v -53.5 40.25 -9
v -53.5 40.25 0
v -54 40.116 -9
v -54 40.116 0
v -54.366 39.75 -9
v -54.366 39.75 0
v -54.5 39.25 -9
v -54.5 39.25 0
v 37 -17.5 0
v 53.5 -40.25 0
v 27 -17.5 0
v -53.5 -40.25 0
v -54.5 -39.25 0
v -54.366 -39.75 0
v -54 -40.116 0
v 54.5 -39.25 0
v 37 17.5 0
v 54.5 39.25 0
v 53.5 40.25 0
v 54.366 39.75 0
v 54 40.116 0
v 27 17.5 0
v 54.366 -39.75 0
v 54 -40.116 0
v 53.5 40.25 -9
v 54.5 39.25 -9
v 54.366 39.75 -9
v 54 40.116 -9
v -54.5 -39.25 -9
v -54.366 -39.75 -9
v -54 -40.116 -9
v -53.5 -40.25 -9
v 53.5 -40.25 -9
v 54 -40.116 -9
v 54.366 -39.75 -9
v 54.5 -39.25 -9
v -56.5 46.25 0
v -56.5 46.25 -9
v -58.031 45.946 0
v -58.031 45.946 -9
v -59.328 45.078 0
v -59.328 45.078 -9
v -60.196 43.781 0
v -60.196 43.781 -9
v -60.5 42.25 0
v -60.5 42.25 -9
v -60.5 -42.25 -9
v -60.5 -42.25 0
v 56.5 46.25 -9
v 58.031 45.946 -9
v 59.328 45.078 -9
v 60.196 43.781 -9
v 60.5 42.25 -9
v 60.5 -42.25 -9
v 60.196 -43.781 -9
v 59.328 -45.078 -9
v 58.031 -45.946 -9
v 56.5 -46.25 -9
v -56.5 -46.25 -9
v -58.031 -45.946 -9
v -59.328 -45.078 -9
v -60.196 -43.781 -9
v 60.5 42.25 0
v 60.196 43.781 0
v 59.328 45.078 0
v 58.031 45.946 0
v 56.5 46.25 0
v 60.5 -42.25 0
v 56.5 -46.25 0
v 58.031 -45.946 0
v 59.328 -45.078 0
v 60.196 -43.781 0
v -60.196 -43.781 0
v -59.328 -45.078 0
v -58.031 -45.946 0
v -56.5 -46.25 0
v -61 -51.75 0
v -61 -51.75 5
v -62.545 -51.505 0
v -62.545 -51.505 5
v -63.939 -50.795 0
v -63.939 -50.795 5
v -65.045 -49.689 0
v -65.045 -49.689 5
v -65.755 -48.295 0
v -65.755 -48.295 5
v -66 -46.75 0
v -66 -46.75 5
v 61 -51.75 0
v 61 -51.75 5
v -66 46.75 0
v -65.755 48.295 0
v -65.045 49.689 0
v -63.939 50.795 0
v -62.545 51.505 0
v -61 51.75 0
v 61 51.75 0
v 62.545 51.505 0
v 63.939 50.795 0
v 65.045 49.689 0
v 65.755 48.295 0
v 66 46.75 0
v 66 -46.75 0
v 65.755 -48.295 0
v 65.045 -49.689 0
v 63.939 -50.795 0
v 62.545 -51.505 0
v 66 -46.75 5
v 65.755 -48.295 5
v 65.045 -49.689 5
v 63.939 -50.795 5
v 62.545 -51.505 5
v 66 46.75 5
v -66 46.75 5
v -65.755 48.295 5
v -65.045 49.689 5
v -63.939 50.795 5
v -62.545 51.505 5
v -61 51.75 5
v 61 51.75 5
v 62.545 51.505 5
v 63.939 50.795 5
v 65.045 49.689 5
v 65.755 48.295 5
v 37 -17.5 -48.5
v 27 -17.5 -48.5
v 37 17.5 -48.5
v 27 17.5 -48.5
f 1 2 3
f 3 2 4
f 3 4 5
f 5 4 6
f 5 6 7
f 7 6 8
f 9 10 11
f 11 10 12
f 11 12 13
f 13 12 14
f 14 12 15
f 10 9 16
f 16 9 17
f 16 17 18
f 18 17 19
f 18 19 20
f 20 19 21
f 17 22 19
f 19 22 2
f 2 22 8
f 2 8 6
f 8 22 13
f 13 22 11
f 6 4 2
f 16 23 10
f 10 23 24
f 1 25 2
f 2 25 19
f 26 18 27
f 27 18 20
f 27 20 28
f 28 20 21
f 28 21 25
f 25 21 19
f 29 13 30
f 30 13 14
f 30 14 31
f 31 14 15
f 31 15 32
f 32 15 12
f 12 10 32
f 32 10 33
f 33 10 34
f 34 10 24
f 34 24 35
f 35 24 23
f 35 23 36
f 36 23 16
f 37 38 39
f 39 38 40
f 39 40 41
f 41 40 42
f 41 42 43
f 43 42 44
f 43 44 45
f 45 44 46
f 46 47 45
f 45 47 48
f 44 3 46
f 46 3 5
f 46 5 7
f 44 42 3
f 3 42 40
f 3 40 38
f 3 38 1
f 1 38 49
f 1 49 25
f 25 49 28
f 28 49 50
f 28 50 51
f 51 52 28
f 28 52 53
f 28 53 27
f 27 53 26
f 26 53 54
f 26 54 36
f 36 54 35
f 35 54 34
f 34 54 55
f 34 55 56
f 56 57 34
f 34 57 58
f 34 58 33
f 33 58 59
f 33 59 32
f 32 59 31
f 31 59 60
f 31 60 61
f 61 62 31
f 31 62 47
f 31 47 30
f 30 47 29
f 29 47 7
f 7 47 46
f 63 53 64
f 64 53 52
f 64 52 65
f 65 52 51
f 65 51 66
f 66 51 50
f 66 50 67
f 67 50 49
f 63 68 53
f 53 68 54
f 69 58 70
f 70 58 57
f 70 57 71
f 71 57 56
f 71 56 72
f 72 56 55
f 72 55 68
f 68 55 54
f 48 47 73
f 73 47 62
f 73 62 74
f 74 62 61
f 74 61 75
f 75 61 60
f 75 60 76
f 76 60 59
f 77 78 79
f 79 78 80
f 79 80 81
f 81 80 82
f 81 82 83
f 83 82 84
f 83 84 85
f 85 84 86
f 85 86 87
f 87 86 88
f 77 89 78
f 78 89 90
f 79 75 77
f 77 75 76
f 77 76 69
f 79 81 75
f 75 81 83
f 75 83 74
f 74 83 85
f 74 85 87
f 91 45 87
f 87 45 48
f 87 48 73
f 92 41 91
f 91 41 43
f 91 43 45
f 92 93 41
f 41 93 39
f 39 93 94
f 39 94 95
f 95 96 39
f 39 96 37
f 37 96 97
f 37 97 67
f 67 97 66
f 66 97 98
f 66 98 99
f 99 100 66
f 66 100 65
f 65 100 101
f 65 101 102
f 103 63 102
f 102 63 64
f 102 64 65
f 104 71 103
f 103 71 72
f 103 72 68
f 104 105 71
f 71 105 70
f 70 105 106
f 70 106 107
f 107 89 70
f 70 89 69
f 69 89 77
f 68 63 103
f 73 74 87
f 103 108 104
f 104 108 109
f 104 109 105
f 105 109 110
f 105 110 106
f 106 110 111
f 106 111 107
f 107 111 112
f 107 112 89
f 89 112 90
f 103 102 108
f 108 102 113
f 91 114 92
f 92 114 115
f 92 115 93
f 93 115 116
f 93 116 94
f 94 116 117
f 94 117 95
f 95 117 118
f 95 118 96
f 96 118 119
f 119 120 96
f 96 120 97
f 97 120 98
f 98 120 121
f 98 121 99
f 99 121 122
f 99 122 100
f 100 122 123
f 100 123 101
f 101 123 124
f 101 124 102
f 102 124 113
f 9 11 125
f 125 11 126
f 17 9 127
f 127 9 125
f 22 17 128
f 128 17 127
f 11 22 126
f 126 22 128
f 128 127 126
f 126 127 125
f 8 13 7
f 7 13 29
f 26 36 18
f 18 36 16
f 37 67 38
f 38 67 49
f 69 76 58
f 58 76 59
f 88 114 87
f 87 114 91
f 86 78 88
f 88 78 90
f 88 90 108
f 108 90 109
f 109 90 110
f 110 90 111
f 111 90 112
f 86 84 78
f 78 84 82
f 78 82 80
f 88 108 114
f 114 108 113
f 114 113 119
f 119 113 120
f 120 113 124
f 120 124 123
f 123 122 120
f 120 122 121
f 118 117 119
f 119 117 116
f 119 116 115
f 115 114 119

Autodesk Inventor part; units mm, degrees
ref_plane "YZ Plane" through (0, 0, 0) normal (1, 0, 0) x (0, 1, 0)
ref_plane "XZ Plane" through (0, 0, 0) normal (0, 1, 0) x (-1, 0, 0)
ref_plane "XY Plane" through (0, 0, 0) normal (0, 0, 1) x (1, 0, 0)
sketch "Sketch1" plane through (0, 0, 0) normal (0, 0, 1) x (1, 0, 0)
  line L0 (-66, 51.75) -> (66, 51.75)
  line L1 (66, 51.75) -> (66, -51.75)
  line L2 (66, -51.75) -> (-66, -51.75)
  line L3 (-66, -51.75) -> (-66, 51.75)
  line L4 (-60.5, 46.25) -> (60.5, 46.25)
  line L5 (60.5, 46.25) -> (60.5, -46.25)
  line L6 (60.5, -46.25) -> (-60.5, -46.25)
  line L7 (-60.5, -46.25) -> (-60.5, 46.25)
  line L8 (54.5, 40.25) -> (-54.5, 40.25)
  line L9 (-54.5, 40.25) -> (-54.5, -40.25)
  line L10 (-54.5, -40.25) -> (54.5, -40.25)
  line L11 (54.5, -40.25) -> (54.5, 40.25)
  line L12 (0, 46.25) -> (0, 40.25) construction
  line L13 (-60.5, 0) -> (-54.5, 0) construction
  line L14 (0, 51.75) -> (0, 46.25) construction
  line L15 (-60.5, 0) -> (-66, 0) construction
  line L16 (37, 17.5) -> (27, 17.5)
  line L17 (27, 17.5) -> (27, -17.5)
  line L18 (27, -17.5) -> (37, -17.5)
  line L19 (37, -17.5) -> (37, 17.5)
  line L20 (66, -46.75) -> (66, 46.75)
  line L21 (-61, -51.75) -> (61, -51.75)
  line L22 (-61, 46.75) -> (61, 46.75)
  line L23 (61, 46.75) -> (61, -46.75)
  point P0 (0, 0)
  point P1 (60.5, 0)
  point P2 (66, 0)
  point P3 (37, 0)
  point P4 (54.5, 0)
  dimension "d9" = 0.5
  dimension "d10" = 6
  dimension "d11" = 10
  dimension "d12" = 35
  dimension "d13" = 24
extrude "Extrusion1" add sketch "Sketch1" along normal blind 5 contours L0 L1 L2 L3 | L4 L5 L6 L7 | L11 L10 L9 L8 | L19 L18 L17 L16
extrude "Extrusion2" add sketch "Sketch1" against normal blind 9 contours L4 L5 L6 L7
extrude "Extrusion3" add sketch "Sketch1" against normal blind 48.5 contours L19 L18 L17 L16
fillet "Fillet1" radius 5 4 edges at (66, 51.75, 2.5) (-66, 51.75, 2.5) (66, -51.75, 2.5) (-66, -51.75, 2.5)
fillet "Fillet2" radius 4 4 edges at (-60.5, -46.25, -4.5) (60.5, -46.25, -4.5) (60.5, 46.25, -4.5) (-60.5, 46.25, -4.5)
fillet "Fillet3" radius 1 4 edges at (54.5, -40.25, -4.5) (-54.5, -40.25, -4.5) (54.5, 40.25, -4.5) (-54.5, 40.25, -4.5)
properties part number "kucisteGornji"
